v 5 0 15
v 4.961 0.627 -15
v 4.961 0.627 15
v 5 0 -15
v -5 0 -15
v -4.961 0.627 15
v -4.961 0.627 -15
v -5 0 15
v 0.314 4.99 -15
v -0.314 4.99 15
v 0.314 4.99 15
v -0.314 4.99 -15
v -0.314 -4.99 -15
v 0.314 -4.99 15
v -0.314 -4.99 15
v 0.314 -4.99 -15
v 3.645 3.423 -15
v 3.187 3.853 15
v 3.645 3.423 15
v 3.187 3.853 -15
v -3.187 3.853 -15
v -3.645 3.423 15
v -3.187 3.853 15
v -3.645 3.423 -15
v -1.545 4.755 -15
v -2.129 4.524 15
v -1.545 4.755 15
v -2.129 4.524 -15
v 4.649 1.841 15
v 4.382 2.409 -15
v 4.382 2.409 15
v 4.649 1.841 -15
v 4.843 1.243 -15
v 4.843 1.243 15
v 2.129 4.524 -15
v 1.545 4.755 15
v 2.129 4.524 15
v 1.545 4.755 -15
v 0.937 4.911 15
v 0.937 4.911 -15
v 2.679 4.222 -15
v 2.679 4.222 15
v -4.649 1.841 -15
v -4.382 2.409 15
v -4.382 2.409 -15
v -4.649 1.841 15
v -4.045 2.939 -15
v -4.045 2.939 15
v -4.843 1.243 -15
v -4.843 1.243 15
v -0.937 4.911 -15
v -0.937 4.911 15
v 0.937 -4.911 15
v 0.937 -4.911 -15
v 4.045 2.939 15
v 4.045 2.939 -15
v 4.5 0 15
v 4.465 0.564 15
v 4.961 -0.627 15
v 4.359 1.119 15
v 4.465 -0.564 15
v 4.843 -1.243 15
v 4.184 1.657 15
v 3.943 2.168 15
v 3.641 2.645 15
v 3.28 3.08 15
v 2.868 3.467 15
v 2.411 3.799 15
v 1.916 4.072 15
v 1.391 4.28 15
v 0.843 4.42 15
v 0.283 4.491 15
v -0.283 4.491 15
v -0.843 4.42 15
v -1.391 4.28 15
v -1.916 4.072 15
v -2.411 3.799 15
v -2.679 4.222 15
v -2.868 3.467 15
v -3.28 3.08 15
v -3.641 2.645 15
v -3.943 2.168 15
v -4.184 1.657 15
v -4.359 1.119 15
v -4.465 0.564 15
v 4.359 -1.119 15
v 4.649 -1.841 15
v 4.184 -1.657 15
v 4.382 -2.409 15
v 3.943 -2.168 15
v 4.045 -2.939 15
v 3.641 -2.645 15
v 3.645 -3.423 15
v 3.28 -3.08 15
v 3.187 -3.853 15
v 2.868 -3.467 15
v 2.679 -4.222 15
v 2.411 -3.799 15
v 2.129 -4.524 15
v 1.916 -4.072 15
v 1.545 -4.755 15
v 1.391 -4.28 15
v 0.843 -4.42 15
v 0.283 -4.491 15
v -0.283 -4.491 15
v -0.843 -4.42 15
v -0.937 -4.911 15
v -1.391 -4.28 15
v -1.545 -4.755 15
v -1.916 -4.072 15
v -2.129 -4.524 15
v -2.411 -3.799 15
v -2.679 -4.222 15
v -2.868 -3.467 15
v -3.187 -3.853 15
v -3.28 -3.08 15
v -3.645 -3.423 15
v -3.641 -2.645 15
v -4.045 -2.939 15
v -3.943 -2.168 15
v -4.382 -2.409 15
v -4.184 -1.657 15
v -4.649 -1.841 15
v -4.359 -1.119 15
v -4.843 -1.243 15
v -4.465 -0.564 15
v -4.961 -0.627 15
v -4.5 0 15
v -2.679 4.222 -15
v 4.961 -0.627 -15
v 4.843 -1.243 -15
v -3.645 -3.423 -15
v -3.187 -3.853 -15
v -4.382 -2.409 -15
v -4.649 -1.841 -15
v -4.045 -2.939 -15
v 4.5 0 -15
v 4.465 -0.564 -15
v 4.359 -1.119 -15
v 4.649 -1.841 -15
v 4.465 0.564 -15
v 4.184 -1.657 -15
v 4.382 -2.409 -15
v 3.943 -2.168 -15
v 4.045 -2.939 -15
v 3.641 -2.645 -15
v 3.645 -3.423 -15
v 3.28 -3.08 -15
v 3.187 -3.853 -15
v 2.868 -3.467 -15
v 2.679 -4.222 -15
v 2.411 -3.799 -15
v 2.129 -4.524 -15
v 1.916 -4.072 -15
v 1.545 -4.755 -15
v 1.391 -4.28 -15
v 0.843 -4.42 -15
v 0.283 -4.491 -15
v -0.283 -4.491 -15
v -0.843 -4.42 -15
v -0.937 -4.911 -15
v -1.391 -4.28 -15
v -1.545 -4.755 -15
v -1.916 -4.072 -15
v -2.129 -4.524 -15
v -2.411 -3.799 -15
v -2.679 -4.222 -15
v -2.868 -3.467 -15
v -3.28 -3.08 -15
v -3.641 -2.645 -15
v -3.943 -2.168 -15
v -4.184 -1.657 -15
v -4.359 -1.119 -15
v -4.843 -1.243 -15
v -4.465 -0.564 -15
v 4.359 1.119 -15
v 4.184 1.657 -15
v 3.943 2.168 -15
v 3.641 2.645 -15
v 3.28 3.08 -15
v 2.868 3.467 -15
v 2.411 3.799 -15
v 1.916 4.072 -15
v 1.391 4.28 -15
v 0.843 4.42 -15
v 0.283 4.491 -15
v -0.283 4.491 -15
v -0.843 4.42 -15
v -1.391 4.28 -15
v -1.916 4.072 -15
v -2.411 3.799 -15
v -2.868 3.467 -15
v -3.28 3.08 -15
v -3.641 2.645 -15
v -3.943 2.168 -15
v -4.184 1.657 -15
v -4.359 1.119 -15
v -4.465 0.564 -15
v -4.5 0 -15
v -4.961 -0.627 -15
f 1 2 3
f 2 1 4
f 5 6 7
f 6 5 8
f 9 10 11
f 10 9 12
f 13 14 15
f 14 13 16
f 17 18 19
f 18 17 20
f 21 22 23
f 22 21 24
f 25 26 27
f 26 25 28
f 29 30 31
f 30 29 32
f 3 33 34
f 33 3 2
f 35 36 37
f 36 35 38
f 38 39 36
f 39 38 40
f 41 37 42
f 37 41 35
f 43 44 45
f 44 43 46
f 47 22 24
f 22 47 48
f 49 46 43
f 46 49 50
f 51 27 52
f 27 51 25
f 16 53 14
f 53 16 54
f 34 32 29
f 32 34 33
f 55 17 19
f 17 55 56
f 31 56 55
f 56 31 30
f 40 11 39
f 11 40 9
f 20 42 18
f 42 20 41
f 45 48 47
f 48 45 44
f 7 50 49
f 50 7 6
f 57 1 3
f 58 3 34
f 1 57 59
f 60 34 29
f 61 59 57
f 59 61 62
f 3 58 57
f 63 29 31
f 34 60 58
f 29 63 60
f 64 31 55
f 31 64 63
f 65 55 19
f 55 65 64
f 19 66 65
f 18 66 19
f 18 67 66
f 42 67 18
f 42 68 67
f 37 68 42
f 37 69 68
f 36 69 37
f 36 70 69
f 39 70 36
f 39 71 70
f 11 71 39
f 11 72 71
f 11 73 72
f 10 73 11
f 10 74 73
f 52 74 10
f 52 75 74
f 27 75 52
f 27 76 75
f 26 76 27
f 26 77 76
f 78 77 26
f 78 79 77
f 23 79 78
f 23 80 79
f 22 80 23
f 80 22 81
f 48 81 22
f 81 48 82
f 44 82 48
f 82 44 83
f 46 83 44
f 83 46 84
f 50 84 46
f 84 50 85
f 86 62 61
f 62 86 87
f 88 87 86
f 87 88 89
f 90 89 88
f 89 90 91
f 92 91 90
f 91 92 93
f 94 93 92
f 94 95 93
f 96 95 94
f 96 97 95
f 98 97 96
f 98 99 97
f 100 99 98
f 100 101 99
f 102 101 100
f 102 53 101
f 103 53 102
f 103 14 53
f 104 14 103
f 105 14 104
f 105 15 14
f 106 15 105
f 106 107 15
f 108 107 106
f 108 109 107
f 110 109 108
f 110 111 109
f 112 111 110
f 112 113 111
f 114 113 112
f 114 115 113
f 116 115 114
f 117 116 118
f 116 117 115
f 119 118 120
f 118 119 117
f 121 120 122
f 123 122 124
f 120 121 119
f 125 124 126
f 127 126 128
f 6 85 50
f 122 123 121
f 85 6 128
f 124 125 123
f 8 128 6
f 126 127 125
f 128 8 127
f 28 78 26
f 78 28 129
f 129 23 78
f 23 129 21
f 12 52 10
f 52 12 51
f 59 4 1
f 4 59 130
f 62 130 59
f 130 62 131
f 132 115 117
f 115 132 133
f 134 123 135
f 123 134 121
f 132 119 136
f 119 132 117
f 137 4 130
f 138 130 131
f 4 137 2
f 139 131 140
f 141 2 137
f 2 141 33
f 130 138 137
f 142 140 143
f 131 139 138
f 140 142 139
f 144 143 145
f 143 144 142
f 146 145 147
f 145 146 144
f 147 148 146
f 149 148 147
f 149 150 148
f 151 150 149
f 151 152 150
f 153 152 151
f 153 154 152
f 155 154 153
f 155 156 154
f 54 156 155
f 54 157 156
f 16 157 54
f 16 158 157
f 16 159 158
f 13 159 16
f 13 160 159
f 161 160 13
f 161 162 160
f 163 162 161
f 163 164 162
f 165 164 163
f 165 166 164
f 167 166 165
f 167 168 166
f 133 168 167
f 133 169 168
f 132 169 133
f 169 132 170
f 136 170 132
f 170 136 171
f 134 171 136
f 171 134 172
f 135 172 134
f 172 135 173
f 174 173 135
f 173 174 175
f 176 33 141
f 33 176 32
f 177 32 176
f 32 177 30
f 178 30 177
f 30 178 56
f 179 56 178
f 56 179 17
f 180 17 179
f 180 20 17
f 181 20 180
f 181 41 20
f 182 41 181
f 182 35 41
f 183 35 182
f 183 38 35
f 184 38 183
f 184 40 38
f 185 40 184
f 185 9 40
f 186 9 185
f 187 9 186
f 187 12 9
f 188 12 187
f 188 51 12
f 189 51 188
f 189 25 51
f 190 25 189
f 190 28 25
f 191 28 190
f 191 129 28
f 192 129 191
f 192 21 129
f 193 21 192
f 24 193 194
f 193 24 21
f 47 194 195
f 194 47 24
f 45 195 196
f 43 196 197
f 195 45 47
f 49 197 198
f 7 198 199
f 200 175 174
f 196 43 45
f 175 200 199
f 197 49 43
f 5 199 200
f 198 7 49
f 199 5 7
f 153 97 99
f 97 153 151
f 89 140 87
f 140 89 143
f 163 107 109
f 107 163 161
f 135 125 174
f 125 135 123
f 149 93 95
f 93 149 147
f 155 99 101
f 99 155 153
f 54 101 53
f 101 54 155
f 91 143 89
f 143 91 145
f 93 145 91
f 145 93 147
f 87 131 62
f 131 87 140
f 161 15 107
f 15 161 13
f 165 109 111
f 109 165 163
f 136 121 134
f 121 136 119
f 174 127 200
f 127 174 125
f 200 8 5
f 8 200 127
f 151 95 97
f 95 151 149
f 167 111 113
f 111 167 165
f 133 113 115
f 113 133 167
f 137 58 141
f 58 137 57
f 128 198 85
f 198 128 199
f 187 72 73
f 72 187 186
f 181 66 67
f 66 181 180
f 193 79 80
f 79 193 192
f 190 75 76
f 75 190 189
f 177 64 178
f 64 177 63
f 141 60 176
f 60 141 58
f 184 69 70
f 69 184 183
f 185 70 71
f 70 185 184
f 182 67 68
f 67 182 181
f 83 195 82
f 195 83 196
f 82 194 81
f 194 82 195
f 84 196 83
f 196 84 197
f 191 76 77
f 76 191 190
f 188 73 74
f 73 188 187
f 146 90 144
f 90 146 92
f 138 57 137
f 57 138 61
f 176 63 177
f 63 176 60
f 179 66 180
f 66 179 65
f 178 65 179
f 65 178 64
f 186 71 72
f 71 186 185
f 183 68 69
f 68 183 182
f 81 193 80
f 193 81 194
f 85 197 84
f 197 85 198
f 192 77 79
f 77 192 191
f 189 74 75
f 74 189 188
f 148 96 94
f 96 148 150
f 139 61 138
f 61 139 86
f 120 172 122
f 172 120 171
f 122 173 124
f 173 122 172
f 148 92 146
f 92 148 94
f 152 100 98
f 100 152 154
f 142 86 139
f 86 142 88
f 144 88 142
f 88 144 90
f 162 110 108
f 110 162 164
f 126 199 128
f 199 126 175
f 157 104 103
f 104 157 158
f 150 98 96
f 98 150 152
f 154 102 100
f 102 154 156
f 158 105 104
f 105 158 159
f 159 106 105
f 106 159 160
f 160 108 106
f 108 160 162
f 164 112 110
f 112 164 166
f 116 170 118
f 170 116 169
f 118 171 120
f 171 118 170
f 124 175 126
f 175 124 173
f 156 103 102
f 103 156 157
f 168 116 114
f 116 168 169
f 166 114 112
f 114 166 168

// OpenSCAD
$fn = 50;


difference() {
	union() {
		translate(v = [0, 0, -15.0000000000]) {
			cylinder(h = 30, r = 5.0000000000);
		}
	}
	union() {
		translate(v = [0, 0, -100.0000000000]) {
			cylinder(h = 200, r = 4.5000000000);
		}
	}
}
